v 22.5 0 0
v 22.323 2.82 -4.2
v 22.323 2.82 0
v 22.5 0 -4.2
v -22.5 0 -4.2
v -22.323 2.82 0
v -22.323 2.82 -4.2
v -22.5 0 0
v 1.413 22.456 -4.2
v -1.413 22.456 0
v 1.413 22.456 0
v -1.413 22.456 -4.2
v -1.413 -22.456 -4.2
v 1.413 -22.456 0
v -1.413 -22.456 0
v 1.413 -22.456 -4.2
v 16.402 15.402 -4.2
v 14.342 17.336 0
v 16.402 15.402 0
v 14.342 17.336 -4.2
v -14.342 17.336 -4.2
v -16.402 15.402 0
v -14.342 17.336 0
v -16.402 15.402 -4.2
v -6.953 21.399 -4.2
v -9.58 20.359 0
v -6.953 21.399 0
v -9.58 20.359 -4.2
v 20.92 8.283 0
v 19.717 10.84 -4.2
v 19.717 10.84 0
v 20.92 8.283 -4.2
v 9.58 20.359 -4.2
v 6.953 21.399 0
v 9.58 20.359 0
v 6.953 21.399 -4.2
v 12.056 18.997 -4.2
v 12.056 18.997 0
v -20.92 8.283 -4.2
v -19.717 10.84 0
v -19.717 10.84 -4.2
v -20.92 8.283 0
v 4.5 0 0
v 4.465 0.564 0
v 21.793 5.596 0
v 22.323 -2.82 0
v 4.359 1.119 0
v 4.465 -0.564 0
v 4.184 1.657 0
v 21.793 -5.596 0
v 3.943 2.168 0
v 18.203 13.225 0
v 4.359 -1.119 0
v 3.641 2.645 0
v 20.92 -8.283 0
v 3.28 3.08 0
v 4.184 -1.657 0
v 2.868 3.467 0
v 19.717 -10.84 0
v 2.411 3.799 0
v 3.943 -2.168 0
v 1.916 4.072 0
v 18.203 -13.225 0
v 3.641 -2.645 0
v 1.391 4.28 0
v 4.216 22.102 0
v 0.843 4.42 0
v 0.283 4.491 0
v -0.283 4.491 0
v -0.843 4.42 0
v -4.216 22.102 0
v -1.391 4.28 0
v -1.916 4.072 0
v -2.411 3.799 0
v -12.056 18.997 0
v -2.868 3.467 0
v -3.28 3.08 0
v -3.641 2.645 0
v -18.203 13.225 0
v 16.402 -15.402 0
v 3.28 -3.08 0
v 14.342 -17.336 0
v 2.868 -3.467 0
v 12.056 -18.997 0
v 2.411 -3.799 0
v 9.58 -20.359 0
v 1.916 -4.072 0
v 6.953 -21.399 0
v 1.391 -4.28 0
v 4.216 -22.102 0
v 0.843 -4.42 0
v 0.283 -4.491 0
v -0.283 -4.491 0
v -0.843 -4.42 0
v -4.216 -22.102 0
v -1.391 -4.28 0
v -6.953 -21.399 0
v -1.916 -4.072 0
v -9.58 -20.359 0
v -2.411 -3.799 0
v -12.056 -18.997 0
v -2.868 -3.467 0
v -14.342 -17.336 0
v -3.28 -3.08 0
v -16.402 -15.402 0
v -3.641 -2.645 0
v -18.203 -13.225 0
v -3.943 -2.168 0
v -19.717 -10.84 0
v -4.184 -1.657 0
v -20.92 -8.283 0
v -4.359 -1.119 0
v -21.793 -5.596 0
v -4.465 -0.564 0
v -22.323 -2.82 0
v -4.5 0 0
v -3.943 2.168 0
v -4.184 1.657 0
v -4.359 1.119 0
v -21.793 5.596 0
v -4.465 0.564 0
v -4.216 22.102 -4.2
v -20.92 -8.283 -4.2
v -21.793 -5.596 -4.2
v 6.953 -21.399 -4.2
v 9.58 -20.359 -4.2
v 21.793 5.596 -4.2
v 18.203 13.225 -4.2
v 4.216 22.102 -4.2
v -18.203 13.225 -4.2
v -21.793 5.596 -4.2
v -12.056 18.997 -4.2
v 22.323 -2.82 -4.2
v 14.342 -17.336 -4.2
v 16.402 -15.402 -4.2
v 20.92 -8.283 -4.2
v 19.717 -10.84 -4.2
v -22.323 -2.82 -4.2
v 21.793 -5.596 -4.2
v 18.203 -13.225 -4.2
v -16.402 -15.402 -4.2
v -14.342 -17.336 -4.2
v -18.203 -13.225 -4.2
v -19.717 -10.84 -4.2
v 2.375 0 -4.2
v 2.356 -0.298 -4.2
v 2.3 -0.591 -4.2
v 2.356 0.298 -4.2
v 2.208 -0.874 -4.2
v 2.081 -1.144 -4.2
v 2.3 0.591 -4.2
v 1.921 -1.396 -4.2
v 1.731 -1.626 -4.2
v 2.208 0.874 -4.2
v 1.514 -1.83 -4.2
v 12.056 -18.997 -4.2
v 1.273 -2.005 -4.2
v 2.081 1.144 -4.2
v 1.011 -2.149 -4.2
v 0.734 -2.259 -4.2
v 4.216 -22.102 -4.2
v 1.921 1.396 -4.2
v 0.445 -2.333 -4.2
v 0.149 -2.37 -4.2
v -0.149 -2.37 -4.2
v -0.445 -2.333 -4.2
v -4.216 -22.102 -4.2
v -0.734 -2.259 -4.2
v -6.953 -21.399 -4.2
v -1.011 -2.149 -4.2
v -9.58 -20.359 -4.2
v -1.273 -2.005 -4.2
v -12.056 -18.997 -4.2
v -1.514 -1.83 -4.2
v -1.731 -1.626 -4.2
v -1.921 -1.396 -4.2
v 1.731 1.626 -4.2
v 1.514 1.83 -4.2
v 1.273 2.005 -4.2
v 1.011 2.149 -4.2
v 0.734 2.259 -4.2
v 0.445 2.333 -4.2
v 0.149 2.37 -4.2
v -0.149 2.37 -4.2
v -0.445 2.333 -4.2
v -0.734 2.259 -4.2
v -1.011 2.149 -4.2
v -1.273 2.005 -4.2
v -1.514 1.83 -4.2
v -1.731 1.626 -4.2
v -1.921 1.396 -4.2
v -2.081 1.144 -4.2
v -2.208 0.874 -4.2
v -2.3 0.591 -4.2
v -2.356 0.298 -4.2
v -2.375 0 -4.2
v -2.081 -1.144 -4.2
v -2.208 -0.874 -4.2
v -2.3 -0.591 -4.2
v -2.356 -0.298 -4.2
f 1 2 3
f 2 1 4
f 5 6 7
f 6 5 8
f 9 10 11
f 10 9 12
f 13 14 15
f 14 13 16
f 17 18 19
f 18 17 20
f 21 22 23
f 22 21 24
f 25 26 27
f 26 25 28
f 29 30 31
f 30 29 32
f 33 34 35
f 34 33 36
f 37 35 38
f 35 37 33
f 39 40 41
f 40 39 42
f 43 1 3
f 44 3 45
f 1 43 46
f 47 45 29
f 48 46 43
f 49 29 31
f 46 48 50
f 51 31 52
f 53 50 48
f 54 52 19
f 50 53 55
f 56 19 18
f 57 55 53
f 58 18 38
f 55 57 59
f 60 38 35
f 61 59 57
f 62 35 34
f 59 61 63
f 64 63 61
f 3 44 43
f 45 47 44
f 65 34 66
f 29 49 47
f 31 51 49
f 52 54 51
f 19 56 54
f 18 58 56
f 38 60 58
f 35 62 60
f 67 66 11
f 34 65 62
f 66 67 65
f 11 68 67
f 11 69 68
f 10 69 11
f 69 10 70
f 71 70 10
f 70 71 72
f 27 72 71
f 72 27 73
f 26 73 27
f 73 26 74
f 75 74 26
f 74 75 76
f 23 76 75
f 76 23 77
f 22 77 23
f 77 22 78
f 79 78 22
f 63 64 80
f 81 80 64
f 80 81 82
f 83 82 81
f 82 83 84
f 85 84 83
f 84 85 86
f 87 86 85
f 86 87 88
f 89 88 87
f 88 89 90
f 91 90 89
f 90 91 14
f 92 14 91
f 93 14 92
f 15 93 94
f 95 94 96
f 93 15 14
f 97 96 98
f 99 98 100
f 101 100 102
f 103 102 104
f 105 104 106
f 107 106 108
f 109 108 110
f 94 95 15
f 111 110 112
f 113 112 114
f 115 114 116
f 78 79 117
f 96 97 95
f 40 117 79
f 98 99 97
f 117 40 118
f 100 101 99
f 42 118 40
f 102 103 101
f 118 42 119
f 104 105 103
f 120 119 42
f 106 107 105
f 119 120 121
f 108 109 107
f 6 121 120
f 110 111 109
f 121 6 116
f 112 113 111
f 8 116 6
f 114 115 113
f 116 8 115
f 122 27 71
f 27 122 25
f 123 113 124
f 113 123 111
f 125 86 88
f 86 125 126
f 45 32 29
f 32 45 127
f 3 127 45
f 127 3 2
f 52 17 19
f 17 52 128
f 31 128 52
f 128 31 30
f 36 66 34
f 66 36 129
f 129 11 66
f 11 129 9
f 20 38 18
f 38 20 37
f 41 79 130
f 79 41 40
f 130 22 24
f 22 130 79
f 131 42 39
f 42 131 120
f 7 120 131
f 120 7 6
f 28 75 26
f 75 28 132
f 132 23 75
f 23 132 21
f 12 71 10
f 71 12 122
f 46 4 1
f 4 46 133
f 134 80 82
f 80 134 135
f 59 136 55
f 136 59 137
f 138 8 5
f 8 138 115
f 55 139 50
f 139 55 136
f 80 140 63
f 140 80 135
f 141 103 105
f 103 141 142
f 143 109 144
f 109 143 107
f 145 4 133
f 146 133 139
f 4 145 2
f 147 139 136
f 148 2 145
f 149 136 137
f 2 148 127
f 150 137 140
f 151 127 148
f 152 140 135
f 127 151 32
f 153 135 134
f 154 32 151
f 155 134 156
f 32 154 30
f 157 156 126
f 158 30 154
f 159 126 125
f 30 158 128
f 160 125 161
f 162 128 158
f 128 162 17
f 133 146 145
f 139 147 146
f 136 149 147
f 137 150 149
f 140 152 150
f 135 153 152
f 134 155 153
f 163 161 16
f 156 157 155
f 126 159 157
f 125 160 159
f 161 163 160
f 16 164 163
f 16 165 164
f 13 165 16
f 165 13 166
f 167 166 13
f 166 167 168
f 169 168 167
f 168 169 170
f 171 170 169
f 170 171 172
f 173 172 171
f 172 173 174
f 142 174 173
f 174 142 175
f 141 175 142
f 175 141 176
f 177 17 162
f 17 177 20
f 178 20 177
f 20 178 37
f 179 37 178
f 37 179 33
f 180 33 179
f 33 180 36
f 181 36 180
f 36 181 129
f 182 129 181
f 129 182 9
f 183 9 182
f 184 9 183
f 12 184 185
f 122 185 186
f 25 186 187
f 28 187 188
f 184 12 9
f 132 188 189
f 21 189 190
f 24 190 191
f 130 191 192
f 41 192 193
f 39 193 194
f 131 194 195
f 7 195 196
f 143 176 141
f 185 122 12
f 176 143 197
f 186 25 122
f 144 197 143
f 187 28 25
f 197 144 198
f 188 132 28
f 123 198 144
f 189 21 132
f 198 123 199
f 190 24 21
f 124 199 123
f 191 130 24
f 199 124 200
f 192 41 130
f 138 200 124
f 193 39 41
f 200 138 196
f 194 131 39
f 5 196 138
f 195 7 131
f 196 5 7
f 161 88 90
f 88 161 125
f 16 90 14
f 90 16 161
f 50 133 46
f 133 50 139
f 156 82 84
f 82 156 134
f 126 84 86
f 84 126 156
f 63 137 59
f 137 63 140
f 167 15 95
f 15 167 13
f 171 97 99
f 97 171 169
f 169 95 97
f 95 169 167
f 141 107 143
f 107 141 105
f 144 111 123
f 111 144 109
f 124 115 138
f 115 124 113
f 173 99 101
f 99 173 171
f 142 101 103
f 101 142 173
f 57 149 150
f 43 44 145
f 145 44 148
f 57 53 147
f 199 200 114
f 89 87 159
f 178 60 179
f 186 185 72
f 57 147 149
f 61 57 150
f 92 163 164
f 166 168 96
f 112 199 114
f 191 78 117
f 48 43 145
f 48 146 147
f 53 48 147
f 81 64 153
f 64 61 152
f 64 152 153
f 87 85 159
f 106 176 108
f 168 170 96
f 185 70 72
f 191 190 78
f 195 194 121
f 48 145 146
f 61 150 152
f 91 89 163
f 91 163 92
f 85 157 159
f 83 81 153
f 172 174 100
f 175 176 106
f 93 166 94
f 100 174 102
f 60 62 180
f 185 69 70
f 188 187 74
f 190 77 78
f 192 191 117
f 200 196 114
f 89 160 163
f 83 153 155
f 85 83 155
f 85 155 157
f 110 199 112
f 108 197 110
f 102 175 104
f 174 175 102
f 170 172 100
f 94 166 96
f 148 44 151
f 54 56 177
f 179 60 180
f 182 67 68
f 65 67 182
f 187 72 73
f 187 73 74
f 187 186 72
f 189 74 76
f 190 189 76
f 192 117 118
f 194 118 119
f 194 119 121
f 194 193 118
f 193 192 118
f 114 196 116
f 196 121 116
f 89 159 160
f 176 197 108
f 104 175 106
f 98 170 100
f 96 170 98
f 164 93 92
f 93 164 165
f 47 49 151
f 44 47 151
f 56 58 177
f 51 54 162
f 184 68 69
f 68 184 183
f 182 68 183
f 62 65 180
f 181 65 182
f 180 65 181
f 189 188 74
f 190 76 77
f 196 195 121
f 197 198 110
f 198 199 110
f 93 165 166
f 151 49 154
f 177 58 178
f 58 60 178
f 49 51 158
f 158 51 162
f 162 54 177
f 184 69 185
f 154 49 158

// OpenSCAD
$fn = 50;


difference() {
	union() {
		translate(v = [0, 0, -4.2000000000]) {
			cylinder(h = 4.2000000000, r = 22.5000000000);
		}
		translate(v = [0, 0, -4.2000000000]) {
			cylinder(h = 4.2000000000, r = 2.8750000000);
		}
	}
	union() {
		translate(v = [0, 0, 0]) {
			rotate(a = [0, 0, 0]) {
				difference() {
					union() {
						translate(v = [0, 0, -4.2000000000]) {
							cylinder(h = 4.2000000000, r = 2.2500000000);
						}
						translate(v = [0, 0, -4.2000000000]) {
							cylinder(h = 4.2000000000, r1 = 2.3750000000, r2 = 4.5000000000);
						}
						translate(v = [0, 0, -4.2000000000]) {
							cylinder(h = 4.2000000000, r = 2.3750000000);
						}
						translate(v = [0, 0, -4.2000000000]) {
							cylinder(h = 4.2000000000, r = 2.2500000000);
						}
					}
					union();
				}
			}
		}
	}
}
